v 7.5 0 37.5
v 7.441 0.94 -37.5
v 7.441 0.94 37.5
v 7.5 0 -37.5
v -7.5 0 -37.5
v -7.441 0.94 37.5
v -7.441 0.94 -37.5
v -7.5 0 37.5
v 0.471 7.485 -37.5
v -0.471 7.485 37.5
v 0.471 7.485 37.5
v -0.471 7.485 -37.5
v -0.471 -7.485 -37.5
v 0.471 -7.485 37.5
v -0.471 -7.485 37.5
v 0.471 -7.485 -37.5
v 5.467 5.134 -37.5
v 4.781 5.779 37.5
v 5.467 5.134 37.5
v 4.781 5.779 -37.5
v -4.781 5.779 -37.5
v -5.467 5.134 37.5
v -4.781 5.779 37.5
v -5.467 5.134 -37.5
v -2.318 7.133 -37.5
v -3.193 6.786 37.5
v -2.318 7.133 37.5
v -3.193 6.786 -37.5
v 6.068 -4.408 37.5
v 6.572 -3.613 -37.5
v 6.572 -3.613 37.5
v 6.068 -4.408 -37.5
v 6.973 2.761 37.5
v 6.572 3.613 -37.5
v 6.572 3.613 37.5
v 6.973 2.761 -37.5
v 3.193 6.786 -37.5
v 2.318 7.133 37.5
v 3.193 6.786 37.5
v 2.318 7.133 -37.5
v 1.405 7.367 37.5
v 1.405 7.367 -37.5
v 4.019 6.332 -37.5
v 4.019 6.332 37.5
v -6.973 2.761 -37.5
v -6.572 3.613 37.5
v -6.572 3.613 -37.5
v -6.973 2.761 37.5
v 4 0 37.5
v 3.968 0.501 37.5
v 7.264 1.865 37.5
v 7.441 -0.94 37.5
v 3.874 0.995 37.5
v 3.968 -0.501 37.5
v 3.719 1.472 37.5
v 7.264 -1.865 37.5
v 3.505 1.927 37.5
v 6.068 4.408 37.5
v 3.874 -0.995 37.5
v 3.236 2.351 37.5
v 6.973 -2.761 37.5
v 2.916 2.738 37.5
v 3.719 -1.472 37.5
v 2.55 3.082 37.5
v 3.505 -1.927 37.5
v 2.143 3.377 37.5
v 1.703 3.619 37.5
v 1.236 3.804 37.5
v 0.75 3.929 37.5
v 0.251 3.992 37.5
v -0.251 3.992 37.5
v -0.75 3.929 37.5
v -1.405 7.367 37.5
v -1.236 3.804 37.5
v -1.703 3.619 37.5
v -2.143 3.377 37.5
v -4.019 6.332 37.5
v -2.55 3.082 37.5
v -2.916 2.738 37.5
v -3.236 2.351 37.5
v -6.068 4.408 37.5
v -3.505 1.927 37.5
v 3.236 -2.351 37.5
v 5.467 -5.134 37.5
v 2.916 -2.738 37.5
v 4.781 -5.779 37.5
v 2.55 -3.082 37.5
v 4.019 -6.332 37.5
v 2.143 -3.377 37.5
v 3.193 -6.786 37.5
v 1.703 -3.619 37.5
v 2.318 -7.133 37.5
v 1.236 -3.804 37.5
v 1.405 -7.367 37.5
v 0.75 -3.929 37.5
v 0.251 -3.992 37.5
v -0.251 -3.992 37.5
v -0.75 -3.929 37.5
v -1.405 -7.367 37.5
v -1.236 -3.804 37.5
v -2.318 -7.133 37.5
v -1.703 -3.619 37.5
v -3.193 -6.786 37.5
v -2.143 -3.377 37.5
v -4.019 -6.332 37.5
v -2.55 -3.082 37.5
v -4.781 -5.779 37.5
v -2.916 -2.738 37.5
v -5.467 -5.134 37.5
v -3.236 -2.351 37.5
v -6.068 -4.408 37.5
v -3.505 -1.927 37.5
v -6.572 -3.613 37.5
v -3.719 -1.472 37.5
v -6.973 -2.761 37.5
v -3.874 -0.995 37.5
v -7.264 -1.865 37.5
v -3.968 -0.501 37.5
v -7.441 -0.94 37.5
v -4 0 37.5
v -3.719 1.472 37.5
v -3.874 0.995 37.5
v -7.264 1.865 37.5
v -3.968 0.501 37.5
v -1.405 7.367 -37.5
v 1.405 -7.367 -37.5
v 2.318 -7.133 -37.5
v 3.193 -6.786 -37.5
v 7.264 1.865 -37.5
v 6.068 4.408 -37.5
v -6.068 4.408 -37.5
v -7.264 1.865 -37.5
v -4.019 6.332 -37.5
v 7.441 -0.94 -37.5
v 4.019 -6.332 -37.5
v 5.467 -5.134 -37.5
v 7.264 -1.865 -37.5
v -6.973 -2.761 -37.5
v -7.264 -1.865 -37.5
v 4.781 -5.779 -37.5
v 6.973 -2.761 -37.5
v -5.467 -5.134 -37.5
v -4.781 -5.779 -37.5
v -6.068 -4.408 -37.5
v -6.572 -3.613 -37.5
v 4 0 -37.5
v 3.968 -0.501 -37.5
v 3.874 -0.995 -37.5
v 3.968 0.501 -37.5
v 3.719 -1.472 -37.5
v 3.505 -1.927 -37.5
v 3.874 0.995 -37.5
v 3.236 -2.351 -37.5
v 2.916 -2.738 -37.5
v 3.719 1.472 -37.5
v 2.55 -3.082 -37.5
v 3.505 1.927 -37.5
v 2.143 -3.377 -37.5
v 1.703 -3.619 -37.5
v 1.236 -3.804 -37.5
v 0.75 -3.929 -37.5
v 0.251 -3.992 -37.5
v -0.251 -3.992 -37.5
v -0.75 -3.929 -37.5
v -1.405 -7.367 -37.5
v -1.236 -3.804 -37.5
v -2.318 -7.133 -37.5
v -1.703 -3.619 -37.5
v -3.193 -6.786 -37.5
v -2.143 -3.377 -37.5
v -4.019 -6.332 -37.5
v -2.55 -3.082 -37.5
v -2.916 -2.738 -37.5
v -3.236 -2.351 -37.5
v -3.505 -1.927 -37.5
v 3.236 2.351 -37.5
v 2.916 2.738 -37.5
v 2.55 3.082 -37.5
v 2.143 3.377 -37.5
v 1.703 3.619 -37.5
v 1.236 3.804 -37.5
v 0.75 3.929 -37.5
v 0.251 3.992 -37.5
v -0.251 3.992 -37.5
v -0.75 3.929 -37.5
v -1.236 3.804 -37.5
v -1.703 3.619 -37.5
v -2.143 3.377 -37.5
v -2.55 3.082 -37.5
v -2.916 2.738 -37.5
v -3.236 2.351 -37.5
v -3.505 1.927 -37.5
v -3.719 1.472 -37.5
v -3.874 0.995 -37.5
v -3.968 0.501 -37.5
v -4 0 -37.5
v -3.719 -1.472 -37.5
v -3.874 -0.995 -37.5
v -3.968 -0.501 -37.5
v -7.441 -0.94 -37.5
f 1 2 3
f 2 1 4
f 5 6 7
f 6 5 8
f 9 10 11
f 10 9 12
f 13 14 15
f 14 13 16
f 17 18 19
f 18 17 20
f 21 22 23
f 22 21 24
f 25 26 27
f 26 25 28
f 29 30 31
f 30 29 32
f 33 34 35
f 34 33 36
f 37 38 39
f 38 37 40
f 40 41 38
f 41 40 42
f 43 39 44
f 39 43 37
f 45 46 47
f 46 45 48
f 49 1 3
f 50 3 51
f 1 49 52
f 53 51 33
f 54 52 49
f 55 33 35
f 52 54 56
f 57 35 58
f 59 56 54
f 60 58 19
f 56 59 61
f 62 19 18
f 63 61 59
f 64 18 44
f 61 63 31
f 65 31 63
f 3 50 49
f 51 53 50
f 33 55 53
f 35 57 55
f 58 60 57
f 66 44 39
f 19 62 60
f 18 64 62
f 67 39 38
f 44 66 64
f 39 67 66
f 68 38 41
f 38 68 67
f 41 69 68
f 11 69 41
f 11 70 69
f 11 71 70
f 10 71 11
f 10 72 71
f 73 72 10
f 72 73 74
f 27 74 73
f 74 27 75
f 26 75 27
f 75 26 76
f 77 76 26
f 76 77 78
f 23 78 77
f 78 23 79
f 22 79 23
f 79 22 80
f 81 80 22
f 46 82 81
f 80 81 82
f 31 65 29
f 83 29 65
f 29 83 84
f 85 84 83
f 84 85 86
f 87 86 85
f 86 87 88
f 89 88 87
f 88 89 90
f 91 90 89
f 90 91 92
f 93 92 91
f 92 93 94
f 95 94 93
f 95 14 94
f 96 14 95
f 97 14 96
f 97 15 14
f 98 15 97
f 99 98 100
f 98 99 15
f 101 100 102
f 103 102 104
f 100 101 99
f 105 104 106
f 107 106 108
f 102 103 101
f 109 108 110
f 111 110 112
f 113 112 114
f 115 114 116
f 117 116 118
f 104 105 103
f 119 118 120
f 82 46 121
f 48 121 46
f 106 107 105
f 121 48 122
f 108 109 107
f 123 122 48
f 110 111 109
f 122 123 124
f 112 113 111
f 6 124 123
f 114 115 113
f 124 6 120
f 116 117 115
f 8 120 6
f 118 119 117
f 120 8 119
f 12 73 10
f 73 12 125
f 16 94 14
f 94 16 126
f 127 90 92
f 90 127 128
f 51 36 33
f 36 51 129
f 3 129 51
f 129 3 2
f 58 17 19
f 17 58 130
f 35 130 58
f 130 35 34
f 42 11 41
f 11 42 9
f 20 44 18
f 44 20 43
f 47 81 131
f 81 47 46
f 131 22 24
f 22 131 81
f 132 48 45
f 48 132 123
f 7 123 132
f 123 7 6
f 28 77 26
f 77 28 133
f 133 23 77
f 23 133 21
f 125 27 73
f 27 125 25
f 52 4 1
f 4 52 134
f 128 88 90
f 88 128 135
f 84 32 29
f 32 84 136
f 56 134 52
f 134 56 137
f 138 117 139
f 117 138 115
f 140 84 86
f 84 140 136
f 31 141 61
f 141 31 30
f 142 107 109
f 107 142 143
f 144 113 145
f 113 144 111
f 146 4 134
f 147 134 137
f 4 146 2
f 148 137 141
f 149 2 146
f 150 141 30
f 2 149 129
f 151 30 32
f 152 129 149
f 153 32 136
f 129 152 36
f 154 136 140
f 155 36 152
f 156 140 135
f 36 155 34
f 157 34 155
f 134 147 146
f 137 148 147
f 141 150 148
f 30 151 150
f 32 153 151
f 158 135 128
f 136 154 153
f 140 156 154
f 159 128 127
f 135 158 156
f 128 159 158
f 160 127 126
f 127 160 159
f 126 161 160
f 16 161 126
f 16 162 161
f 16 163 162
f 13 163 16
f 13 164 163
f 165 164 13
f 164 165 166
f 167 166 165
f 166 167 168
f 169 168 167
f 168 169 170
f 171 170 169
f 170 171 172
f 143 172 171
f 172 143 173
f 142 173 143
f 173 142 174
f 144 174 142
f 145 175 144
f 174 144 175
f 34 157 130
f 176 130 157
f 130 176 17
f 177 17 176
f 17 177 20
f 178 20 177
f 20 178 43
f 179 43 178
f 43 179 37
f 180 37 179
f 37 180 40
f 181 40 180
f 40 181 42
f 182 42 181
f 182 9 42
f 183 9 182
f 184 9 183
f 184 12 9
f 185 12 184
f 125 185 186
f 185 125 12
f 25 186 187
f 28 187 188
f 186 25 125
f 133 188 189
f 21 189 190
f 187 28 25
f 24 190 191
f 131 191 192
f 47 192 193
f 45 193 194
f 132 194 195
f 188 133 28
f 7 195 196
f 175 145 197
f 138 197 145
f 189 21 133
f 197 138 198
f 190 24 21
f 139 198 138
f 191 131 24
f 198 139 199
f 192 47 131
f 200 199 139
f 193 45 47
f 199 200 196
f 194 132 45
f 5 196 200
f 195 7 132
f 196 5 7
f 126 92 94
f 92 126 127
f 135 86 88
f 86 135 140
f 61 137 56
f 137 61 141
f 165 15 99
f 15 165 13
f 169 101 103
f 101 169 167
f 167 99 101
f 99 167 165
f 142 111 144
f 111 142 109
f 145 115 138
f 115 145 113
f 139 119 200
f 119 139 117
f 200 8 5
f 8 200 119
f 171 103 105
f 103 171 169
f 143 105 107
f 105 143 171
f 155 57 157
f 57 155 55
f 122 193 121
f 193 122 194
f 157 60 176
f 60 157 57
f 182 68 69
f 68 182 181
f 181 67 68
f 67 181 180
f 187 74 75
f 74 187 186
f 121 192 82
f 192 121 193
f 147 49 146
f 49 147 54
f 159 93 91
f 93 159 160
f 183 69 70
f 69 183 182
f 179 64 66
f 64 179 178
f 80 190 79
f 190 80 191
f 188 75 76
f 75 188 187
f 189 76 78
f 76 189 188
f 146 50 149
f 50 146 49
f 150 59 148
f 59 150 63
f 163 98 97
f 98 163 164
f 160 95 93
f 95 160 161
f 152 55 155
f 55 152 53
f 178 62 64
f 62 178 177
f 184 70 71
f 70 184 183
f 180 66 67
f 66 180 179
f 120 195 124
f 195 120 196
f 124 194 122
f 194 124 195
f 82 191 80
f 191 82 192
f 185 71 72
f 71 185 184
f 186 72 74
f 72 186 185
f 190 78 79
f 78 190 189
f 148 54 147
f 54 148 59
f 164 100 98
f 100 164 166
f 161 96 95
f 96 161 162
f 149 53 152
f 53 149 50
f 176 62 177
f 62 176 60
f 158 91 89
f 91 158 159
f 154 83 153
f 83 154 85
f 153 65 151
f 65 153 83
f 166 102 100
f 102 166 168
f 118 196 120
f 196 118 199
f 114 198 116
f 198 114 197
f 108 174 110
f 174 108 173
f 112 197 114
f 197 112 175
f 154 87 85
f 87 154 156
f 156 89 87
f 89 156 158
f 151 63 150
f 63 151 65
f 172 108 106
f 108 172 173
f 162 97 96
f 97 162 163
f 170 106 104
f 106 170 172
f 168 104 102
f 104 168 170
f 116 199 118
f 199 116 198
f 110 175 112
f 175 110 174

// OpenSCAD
$fn = 50;


difference() {
	union() {
		translate(v = [0, 0, -37.5000000000]) {
			cylinder(h = 75, r = 7.5000000000);
		}
	}
	union() {
		translate(v = [0, 0, -100.0000000000]) {
			cylinder(h = 200, r = 4.0000000000);
		}
	}
}
